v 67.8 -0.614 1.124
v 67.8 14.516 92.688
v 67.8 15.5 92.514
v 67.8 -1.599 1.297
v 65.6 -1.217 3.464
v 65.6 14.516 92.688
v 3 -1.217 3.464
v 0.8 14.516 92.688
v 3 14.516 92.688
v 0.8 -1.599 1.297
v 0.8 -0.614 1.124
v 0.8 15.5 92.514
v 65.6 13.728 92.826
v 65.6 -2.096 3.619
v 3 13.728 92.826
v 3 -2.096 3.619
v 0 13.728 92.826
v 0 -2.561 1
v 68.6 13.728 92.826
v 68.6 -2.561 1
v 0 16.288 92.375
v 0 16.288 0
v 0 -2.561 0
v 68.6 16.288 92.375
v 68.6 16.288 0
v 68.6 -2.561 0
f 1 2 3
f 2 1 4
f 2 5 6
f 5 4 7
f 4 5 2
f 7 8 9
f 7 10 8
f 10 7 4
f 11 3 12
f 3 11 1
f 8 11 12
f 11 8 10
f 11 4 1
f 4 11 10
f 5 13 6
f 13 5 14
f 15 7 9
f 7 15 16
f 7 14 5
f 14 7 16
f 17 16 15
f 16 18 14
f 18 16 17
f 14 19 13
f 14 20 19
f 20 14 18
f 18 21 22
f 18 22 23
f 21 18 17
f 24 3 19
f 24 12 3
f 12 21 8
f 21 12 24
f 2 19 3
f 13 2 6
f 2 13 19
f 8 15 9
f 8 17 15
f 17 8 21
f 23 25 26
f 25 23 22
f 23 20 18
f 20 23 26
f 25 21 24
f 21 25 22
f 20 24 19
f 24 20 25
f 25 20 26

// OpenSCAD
/* [Card dimensions ] */
// spinbox Card height (including sleeve)
card_l = 93; //[::non-negative float]
// spinbox Card width (including sleeve)
card_w = 67; //[::non-negative float]

/* [Box properties] */
// slider Tilt of the card in the display
display_tilt = 10; //[0:90]
// Overhang in front of the card
display_overhang = 2.2; //[::non-negative float]

module card_display(inner_l, inner_w, tilt = 10, overhang = 2.2) {
    wall = 0.8;
    
    l = inner_l + wall;
    w = inner_w + (2 * wall);
    h = 1 + (2 * wall);
    r = 90 - tilt;

    crl = cos(r) * l;
    srh = sin(r) * h;

    difference() {
        hull() {
            rotate([r, 0, 0]) cube([w, l, h]);
            translate([0, -srh, 0]) cube([w, crl + srh, 1]);
        }
        
        rotate([r,0,0]) translate([ 0, 1, wall]) {
            translate([wall, 0, 0]) cube([w - (2 * wall), l, 1]);
            translate([overhang + wall, overhang, 0]) 
                cube([w - 2 * (wall + overhang), l, h]);
        }
    }
}

card_display(card_l, card_w, display_tilt, display_overhang);
